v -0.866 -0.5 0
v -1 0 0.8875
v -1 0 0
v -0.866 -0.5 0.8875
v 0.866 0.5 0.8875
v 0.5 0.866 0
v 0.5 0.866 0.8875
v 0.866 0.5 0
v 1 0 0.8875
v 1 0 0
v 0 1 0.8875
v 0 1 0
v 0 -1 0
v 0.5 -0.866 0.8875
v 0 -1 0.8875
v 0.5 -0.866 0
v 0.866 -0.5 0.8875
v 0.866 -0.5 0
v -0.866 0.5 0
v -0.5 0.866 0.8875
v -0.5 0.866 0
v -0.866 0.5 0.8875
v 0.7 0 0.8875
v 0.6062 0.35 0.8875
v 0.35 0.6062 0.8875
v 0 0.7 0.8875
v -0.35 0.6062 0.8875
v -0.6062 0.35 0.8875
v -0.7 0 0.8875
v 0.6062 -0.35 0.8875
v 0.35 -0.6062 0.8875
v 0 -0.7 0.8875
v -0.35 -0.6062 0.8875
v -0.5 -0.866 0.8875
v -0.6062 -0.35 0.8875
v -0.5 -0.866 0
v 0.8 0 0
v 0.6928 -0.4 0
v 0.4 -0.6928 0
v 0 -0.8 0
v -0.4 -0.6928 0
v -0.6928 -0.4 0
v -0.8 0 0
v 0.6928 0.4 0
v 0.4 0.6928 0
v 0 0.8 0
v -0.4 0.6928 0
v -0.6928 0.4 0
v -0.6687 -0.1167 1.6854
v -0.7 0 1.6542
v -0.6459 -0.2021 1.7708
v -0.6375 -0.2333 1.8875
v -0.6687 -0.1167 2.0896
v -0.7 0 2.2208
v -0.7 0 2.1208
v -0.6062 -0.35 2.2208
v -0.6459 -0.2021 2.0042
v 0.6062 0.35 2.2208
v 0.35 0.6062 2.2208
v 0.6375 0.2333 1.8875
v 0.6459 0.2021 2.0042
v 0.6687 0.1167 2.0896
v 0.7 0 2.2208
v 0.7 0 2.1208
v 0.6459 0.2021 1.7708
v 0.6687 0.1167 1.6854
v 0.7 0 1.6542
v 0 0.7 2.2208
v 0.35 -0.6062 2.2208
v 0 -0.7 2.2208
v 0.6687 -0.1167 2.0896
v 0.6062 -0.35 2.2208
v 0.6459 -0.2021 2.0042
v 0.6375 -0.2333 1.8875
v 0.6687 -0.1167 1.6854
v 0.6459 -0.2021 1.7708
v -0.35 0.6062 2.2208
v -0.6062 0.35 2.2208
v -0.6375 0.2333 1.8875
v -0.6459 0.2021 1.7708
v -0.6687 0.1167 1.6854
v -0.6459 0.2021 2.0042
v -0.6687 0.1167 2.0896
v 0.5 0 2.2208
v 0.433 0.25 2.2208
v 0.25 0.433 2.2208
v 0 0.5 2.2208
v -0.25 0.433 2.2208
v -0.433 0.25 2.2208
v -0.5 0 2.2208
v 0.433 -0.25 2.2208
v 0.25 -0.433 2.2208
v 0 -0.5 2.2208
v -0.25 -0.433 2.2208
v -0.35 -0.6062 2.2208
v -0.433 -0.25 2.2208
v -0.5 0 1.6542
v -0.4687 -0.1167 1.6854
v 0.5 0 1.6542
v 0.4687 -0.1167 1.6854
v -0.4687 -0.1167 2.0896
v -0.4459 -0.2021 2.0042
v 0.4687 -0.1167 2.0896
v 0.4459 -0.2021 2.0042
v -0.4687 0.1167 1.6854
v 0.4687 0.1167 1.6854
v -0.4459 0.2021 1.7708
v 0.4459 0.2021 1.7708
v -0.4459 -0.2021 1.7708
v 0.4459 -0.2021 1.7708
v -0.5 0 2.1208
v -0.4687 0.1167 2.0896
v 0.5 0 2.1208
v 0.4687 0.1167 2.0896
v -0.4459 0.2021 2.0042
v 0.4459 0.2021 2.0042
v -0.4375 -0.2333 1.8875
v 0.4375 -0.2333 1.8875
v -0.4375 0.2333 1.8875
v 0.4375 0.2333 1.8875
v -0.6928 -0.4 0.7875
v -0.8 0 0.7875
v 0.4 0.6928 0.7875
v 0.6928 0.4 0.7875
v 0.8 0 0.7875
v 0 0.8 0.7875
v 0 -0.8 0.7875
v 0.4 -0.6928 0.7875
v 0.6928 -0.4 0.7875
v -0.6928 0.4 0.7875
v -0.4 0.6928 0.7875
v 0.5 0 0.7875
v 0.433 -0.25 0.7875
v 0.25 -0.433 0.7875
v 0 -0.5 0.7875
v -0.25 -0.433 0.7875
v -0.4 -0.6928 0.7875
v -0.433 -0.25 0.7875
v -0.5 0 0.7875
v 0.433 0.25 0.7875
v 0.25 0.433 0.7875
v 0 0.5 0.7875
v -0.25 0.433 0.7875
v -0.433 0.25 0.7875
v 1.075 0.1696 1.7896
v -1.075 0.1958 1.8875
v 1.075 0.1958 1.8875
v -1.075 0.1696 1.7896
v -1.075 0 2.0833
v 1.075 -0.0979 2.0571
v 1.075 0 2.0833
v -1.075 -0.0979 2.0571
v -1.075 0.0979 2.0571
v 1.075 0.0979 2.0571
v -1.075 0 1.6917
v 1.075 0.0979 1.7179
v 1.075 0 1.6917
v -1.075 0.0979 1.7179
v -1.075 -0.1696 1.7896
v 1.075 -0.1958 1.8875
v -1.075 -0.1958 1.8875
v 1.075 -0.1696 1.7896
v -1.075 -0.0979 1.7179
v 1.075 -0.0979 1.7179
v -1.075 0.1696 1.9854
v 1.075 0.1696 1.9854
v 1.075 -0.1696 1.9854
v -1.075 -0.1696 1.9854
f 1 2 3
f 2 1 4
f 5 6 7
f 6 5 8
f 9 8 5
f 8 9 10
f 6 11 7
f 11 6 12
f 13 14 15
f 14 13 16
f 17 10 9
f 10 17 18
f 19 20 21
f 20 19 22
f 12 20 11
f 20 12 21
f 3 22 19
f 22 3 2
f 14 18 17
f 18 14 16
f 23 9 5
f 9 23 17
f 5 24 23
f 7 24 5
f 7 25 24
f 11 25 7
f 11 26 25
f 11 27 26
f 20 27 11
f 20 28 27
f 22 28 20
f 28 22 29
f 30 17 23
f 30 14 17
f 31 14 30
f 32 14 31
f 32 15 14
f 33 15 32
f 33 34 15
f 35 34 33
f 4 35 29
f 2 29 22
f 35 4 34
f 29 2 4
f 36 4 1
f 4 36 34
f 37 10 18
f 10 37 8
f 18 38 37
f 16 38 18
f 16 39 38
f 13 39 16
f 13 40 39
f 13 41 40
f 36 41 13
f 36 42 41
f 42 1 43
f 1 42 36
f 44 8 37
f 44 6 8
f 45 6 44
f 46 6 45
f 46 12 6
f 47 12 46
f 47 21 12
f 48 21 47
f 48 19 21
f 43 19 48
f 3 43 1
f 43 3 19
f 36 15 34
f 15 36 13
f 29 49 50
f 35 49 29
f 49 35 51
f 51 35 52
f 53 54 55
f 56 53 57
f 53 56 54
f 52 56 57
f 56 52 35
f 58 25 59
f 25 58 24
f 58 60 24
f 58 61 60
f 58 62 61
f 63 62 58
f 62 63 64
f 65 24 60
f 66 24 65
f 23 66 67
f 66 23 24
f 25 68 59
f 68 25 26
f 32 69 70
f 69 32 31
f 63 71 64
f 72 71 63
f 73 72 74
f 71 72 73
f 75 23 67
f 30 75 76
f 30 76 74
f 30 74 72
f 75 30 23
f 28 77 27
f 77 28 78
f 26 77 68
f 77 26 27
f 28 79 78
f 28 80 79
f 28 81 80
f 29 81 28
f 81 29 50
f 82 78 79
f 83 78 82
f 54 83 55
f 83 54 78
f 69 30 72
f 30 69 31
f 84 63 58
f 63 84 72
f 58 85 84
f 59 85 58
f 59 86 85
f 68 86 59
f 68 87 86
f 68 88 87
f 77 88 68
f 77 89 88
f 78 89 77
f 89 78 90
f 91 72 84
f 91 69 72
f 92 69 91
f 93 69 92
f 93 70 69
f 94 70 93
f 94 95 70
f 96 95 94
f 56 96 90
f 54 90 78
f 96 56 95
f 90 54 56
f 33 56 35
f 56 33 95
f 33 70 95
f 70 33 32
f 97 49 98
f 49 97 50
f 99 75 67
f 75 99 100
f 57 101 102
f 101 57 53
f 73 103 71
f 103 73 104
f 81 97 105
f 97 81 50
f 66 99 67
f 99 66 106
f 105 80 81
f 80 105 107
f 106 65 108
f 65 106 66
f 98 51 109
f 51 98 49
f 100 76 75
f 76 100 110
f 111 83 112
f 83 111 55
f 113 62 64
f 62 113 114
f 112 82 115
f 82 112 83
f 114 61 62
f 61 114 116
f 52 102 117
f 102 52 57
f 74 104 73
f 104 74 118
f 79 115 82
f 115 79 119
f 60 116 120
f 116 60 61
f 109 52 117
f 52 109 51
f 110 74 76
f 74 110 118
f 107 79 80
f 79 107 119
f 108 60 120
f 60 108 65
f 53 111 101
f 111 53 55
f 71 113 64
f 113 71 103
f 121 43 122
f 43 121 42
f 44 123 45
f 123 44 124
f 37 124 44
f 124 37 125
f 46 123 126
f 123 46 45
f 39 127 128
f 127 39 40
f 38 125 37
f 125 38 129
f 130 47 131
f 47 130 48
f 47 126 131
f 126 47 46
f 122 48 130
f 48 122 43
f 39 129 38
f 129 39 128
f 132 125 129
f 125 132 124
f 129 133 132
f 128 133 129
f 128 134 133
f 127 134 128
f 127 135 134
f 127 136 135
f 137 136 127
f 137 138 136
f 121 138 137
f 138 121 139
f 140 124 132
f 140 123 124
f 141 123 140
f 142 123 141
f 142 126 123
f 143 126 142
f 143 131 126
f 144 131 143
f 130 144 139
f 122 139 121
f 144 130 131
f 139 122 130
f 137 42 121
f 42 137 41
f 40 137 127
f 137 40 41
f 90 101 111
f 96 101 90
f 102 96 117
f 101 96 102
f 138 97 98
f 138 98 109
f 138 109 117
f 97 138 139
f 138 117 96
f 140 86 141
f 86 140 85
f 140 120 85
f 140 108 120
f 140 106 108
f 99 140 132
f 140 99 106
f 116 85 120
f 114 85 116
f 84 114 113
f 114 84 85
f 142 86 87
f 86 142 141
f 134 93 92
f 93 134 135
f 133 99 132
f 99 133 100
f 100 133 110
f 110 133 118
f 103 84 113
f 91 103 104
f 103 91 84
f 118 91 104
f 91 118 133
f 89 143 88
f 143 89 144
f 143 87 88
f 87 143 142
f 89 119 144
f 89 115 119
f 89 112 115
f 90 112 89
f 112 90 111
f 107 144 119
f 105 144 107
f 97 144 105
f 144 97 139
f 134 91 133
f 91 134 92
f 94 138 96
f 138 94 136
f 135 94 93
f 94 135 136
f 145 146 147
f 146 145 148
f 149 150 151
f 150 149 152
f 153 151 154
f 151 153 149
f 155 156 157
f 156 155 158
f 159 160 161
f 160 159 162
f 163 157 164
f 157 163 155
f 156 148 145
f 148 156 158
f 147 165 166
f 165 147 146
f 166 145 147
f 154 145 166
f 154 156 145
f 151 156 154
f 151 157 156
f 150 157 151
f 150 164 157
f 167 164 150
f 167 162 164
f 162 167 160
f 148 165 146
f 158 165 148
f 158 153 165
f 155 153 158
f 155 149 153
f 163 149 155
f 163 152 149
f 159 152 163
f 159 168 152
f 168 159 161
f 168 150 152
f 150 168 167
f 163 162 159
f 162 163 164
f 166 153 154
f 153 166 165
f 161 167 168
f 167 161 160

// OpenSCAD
tolerance=0.075;
hole_radius=0.075;
grid_hole_radius=0.075;
outer_radius=1;
thickness=0.2;
hole_attach_height=0.075;
attach_thickness=0.1;
bottom_rotation_height=1.8875;
top_rotation_height=1.525;
next_hole_radius=0.075;
next_hole_attach_height=0.075;
next_inner=0.8;
max_turn=90.0;
min_turn=90.0;
hole_twist=0.0;

//parameters that don't have to be defined explicitly
eps = tolerance/100;
inner_radius = outer_radius - thickness;
axle_offset = attach_thickness;
bottom_joint_attach_radius = outer_radius - hole_attach_height - grid_hole_radius*2 - tolerance;
fn = 12;
fnh = 6;

//solve for b = axle height
max_turn_b = outer_radius / tan((180 - max_turn)/2);
min_turn_b = outer_radius / tan((180 - min_turn)/2);
axle_radius = bottom_joint_attach_radius/3;

grid_hole_height = hole_radius*2 + hole_attach_height * 2;
bottom_joint_grid_clearance = bottom_rotation_height - (hole_attach_height*2 + hole_radius*2 + grid_hole_height + max_turn_b + attach_thickness);

module angled_cylinder(angle_deg_y, _h, _r, angle_deg_x = 0) {
    rotate([angle_deg_x, angle_deg_y, 0]) { // Rotate the cylinder 
            cylinder(h = _h, r = _r, center = true, $fn = fnh);
        }
}

module hole(_h) {
    cylinder(h = _h, r = grid_hole_radius, $fn = fnh);
}

//makes circle of holes
module circular_grid(_h, _r, _n) {
    for (i = [0:_n-1]) {
        angle = i * 360 / _n;
        x_pos = _r * cos(angle);
        y_pos = _r * sin(angle);
        translate([x_pos, y_pos, -eps]) {
            hole(_h);
        }
    }
}

//makes grid of holes
module hole_grid(hole_height, grid_h) {
    translate([0,0,hole_height]) {
        difference() {
            //cylinder
            cylinder(h = grid_h, r = (inner_radius + outer_radius)/2, 
                center=false, $fn = fn);
            //holes
            for (i = [0 : grid_hole_radius * 2 + hole_attach_height : inner_radius - grid_hole_radius * 2]) {
                circular_grid(grid_h + eps*2, i, ceil(6.28*i/(grid_hole_radius*4)));
            }
            
        } 
    }
}

module joint_bottom() {
    //make grid of holes
    grid_hole_height = hole_radius*2 + hole_attach_height * 2;
    //hole_grid(grid_hole_height, grid_hole_radius);
    
    bottom_joint_attach_height = max_turn_b + axle_radius + axle_offset;
   
    operating_height = hole_attach_height*2 + attach_thickness + hole_radius*2 + grid_hole_height + bottom_joint_grid_clearance;
    difference() {
        //bottom joint
        union() {
            cylinder(h=operating_height, r=outer_radius, $fn = fn);
            
            translate([0,0,operating_height]) {
                cylinder(h=bottom_joint_attach_height,r=bottom_joint_attach_radius,$fn=fn);
                //enforce min turn
                difference() {
                    cylinder(h=max_turn_b - min_turn_b,r=outer_radius,$fn=fn);
                    translate([-outer_radius,-outer_radius*2,-eps/2])
                    cube([outer_radius*2 + eps,outer_radius*2 + axle_radius + axle_offset + tolerance + eps,max_turn_b - min_turn_b + eps]);
                    
                    translate([-outer_radius,0,max_turn_b])
                    rotate([-(90+min_turn),0,0])
                    translate([0,-max_turn_b + eps/2,-axle_radius-axle_offset])
                    cube([outer_radius*2,max_turn_b - min_turn_b + eps,outer_radius*2+ axle_radius + axle_offset], center=false);
                }
                
                
            }
        }
        
        //hole for axle
        translate([0,0,operating_height + max_turn_b])
        rotate([0,90,0])
        cylinder(h=outer_radius*2,r=axle_radius,center=true,$fn=fn);
        
        //shelling
        cylinder(h=operating_height - attach_thickness, r=inner_radius, center = false, $fn = fn);
        
        cylinder(h=operating_height + bottom_joint_attach_height + eps, r =          bottom_joint_attach_radius - thickness, center = false, $fn = fn);
        //shell tolerance
        cylinder(h=eps, r=inner_radius, center=true,$fn = fn);
        
        //screw holes
//        translate([0,0,hole_radius + hole_attach_height]) 
//        rotate([0,0,hole_twist]) {
//            angled_cylinder(0, (outer_radius*1.5 + eps) * 2,  hole_radius, 90);
//            angled_cylinder(90, (outer_radius*1.5 + eps) * 2, hole_radius, 0);
//        } 
        
        //holes for routing strings
//        translate([0,-inner_radius + thickness,-hole_attach_height - grid_hole_radius + operating_height])
//        rotate([90,0,0])
//        cylinder(h=thickness + inner_radius + eps, r=grid_hole_radius,$fn=fn);
//        
//        translate([0,outer_radius,-hole_attach_height - grid_hole_radius + operating_height + max_turn_b - min_turn_b])
//        rotate([90,0,0])
//        cylinder(h=thickness + inner_radius + eps, r=grid_hole_radius,$fn=fn);
//        
//        translate([0,bottom_joint_attach_radius + hole_attach_height + grid_hole_radius,operating_height - attach_thickness - eps/2])
//        cylinder(h=attach_thickness + max_turn_b - min_turn_b - hole_attach_height + eps, r=grid_hole_radius,$fn=fn);
    }
}

module axle() {
    cylinder(h=outer_radius*2 + tolerance*2, r = axle_radius - tolerance/2, $fn = fn);
}

joint_bottom();

rotate([0,90,0])
translate([-bottom_rotation_height,0,-outer_radius - tolerance])
axle();
